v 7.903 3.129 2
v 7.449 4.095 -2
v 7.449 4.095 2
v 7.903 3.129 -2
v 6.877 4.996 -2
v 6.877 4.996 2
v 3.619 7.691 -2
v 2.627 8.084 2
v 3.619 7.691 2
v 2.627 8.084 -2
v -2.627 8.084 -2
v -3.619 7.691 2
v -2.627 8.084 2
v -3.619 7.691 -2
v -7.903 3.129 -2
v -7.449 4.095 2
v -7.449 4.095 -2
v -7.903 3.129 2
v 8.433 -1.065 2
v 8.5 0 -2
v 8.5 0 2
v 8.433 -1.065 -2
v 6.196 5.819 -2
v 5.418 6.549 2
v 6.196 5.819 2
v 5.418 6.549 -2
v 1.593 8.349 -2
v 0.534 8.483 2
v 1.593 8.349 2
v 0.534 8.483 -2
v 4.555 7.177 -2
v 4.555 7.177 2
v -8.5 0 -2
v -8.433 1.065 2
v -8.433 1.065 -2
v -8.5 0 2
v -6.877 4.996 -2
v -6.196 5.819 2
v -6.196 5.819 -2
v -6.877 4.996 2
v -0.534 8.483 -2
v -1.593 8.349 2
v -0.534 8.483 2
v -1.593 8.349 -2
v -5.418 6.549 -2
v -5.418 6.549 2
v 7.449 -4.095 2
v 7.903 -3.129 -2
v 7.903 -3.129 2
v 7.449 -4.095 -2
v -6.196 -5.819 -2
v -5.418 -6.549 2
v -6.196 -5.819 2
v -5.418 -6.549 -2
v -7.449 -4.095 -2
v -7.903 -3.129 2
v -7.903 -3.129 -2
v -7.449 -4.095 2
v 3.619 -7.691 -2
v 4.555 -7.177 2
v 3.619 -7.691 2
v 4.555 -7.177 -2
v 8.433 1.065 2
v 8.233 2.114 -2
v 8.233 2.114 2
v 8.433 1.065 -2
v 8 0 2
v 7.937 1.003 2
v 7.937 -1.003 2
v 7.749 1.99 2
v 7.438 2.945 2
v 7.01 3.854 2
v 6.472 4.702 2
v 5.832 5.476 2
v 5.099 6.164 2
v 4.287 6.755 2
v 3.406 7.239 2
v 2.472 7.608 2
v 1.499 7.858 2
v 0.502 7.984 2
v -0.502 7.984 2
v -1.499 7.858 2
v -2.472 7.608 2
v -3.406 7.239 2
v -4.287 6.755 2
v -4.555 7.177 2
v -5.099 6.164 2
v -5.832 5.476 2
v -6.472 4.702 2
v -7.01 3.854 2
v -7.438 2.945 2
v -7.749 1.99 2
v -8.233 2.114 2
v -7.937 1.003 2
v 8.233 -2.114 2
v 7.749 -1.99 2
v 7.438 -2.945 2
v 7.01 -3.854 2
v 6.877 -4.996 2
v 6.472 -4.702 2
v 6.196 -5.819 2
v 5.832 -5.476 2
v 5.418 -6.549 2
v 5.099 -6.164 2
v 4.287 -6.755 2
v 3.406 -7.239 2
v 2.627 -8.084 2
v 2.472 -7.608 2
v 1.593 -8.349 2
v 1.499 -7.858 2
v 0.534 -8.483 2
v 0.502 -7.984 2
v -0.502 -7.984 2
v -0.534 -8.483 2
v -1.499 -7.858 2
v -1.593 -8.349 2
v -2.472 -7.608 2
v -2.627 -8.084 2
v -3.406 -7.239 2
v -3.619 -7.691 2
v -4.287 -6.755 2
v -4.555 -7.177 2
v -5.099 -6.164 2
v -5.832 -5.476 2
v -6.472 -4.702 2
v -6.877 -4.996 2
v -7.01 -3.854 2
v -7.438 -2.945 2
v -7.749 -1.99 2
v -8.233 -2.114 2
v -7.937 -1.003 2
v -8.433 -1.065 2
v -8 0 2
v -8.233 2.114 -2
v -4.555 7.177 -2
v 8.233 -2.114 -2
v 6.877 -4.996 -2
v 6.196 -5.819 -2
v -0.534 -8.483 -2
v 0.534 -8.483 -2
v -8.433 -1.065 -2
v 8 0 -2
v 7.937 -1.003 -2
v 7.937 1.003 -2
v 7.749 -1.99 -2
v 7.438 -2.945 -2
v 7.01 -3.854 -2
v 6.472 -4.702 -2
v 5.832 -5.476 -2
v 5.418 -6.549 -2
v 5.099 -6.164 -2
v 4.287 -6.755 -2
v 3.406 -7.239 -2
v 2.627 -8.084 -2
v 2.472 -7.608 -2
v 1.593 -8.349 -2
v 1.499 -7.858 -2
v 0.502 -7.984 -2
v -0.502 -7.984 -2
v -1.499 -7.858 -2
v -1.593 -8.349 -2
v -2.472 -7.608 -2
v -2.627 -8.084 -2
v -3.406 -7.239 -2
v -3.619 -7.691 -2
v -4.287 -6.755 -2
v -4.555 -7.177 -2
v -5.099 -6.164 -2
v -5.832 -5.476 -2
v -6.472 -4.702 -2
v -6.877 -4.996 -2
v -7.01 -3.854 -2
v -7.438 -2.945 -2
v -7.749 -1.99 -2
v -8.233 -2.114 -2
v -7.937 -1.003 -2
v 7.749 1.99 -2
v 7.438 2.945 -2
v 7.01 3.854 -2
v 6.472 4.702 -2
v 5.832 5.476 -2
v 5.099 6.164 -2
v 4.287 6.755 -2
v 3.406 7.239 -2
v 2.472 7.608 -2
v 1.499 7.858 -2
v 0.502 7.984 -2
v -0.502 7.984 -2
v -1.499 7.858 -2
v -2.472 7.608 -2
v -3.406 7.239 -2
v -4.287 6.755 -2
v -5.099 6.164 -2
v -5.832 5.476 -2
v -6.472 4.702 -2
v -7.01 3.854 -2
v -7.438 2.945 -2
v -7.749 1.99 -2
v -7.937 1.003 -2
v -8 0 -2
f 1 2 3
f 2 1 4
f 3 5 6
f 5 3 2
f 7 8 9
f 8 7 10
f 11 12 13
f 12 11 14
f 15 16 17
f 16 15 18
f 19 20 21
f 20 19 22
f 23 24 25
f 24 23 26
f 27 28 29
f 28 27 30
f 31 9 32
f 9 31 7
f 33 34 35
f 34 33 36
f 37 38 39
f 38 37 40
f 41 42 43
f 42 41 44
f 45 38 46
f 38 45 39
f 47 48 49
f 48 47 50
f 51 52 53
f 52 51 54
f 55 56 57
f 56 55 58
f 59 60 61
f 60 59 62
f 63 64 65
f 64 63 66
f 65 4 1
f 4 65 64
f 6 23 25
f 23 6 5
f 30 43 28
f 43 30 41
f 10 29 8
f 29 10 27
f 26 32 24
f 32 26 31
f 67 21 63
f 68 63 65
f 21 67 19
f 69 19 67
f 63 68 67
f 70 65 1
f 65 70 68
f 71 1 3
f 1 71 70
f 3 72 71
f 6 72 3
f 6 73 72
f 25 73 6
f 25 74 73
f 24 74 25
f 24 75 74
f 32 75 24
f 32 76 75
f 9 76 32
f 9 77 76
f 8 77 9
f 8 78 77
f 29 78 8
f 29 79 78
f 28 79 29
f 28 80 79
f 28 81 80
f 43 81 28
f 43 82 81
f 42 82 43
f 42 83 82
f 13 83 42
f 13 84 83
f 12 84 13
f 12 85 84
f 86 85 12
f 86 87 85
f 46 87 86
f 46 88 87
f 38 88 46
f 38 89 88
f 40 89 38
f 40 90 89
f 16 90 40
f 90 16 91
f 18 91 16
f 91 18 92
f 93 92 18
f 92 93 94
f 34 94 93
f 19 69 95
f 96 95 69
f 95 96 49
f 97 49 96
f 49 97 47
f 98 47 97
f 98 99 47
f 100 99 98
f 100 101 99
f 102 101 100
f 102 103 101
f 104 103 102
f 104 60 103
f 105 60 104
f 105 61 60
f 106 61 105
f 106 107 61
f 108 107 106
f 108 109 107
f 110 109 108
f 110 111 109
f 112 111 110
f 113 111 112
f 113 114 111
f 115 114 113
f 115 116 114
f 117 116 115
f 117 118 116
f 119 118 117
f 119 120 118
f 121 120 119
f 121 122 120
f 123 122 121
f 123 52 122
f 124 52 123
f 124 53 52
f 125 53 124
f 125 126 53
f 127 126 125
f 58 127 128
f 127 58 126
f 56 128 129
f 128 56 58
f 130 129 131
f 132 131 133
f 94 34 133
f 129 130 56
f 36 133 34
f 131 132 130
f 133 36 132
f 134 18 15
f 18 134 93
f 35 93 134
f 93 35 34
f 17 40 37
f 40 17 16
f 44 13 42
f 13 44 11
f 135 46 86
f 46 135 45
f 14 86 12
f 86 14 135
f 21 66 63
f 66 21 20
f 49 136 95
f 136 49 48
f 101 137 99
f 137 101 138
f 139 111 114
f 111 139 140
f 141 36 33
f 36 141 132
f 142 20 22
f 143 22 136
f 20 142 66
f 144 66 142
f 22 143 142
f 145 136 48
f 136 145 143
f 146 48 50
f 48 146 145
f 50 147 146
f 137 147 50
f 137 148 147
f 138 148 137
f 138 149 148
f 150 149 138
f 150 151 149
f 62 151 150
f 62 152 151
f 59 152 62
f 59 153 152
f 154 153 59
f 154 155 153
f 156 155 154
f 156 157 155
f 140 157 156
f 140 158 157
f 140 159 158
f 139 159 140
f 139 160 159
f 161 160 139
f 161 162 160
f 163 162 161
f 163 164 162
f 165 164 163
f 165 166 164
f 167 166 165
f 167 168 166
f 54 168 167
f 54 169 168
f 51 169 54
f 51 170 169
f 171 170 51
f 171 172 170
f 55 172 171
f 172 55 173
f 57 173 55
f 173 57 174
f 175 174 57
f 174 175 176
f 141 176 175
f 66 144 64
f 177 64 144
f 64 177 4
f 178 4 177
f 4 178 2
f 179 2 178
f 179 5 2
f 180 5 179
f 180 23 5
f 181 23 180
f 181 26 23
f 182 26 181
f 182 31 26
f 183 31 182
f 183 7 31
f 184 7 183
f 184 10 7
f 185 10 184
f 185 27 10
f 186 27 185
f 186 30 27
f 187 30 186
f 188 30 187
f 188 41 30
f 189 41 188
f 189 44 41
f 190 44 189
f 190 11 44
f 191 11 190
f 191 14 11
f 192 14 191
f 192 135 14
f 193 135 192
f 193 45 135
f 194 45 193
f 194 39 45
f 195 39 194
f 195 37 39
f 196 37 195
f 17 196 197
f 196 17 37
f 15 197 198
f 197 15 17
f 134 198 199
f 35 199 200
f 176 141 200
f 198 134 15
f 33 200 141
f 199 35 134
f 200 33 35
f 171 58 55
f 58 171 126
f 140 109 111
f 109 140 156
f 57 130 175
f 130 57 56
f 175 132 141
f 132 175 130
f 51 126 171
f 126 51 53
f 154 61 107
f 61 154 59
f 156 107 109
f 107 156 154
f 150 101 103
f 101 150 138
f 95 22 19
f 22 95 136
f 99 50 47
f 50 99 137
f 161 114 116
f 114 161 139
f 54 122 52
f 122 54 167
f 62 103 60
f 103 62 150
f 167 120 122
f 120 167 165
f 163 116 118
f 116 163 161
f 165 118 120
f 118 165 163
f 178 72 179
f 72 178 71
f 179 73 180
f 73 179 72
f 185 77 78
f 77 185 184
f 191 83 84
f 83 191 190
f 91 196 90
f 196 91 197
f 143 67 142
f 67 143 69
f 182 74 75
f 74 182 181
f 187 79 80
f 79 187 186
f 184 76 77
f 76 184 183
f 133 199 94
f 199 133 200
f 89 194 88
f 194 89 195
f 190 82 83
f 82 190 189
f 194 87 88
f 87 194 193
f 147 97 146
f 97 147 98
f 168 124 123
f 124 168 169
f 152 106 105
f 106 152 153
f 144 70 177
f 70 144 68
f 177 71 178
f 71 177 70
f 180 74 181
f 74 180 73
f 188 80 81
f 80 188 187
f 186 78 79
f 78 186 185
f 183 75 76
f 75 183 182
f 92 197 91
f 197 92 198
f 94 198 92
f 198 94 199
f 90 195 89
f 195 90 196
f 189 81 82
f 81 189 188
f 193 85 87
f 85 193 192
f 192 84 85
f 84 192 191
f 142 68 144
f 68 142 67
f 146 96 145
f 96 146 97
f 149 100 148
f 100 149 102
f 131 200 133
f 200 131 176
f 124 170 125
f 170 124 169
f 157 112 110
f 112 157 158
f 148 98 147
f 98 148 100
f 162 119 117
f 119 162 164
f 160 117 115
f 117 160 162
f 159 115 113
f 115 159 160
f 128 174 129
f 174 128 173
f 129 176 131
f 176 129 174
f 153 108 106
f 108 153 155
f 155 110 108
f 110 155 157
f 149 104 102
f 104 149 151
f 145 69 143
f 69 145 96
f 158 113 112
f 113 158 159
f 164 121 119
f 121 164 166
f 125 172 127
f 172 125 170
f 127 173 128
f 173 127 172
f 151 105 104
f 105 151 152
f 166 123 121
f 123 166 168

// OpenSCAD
$fn = 50;


difference() {
	union() {
		translate(v = [0, 0, -2.0000000000]) {
			cylinder(h = 4, r = 8.5000000000);
		}
	}
	union() {
		translate(v = [0, 0, -100.0000000000]) {
			cylinder(h = 200, r = 8);
		}
	}
}
